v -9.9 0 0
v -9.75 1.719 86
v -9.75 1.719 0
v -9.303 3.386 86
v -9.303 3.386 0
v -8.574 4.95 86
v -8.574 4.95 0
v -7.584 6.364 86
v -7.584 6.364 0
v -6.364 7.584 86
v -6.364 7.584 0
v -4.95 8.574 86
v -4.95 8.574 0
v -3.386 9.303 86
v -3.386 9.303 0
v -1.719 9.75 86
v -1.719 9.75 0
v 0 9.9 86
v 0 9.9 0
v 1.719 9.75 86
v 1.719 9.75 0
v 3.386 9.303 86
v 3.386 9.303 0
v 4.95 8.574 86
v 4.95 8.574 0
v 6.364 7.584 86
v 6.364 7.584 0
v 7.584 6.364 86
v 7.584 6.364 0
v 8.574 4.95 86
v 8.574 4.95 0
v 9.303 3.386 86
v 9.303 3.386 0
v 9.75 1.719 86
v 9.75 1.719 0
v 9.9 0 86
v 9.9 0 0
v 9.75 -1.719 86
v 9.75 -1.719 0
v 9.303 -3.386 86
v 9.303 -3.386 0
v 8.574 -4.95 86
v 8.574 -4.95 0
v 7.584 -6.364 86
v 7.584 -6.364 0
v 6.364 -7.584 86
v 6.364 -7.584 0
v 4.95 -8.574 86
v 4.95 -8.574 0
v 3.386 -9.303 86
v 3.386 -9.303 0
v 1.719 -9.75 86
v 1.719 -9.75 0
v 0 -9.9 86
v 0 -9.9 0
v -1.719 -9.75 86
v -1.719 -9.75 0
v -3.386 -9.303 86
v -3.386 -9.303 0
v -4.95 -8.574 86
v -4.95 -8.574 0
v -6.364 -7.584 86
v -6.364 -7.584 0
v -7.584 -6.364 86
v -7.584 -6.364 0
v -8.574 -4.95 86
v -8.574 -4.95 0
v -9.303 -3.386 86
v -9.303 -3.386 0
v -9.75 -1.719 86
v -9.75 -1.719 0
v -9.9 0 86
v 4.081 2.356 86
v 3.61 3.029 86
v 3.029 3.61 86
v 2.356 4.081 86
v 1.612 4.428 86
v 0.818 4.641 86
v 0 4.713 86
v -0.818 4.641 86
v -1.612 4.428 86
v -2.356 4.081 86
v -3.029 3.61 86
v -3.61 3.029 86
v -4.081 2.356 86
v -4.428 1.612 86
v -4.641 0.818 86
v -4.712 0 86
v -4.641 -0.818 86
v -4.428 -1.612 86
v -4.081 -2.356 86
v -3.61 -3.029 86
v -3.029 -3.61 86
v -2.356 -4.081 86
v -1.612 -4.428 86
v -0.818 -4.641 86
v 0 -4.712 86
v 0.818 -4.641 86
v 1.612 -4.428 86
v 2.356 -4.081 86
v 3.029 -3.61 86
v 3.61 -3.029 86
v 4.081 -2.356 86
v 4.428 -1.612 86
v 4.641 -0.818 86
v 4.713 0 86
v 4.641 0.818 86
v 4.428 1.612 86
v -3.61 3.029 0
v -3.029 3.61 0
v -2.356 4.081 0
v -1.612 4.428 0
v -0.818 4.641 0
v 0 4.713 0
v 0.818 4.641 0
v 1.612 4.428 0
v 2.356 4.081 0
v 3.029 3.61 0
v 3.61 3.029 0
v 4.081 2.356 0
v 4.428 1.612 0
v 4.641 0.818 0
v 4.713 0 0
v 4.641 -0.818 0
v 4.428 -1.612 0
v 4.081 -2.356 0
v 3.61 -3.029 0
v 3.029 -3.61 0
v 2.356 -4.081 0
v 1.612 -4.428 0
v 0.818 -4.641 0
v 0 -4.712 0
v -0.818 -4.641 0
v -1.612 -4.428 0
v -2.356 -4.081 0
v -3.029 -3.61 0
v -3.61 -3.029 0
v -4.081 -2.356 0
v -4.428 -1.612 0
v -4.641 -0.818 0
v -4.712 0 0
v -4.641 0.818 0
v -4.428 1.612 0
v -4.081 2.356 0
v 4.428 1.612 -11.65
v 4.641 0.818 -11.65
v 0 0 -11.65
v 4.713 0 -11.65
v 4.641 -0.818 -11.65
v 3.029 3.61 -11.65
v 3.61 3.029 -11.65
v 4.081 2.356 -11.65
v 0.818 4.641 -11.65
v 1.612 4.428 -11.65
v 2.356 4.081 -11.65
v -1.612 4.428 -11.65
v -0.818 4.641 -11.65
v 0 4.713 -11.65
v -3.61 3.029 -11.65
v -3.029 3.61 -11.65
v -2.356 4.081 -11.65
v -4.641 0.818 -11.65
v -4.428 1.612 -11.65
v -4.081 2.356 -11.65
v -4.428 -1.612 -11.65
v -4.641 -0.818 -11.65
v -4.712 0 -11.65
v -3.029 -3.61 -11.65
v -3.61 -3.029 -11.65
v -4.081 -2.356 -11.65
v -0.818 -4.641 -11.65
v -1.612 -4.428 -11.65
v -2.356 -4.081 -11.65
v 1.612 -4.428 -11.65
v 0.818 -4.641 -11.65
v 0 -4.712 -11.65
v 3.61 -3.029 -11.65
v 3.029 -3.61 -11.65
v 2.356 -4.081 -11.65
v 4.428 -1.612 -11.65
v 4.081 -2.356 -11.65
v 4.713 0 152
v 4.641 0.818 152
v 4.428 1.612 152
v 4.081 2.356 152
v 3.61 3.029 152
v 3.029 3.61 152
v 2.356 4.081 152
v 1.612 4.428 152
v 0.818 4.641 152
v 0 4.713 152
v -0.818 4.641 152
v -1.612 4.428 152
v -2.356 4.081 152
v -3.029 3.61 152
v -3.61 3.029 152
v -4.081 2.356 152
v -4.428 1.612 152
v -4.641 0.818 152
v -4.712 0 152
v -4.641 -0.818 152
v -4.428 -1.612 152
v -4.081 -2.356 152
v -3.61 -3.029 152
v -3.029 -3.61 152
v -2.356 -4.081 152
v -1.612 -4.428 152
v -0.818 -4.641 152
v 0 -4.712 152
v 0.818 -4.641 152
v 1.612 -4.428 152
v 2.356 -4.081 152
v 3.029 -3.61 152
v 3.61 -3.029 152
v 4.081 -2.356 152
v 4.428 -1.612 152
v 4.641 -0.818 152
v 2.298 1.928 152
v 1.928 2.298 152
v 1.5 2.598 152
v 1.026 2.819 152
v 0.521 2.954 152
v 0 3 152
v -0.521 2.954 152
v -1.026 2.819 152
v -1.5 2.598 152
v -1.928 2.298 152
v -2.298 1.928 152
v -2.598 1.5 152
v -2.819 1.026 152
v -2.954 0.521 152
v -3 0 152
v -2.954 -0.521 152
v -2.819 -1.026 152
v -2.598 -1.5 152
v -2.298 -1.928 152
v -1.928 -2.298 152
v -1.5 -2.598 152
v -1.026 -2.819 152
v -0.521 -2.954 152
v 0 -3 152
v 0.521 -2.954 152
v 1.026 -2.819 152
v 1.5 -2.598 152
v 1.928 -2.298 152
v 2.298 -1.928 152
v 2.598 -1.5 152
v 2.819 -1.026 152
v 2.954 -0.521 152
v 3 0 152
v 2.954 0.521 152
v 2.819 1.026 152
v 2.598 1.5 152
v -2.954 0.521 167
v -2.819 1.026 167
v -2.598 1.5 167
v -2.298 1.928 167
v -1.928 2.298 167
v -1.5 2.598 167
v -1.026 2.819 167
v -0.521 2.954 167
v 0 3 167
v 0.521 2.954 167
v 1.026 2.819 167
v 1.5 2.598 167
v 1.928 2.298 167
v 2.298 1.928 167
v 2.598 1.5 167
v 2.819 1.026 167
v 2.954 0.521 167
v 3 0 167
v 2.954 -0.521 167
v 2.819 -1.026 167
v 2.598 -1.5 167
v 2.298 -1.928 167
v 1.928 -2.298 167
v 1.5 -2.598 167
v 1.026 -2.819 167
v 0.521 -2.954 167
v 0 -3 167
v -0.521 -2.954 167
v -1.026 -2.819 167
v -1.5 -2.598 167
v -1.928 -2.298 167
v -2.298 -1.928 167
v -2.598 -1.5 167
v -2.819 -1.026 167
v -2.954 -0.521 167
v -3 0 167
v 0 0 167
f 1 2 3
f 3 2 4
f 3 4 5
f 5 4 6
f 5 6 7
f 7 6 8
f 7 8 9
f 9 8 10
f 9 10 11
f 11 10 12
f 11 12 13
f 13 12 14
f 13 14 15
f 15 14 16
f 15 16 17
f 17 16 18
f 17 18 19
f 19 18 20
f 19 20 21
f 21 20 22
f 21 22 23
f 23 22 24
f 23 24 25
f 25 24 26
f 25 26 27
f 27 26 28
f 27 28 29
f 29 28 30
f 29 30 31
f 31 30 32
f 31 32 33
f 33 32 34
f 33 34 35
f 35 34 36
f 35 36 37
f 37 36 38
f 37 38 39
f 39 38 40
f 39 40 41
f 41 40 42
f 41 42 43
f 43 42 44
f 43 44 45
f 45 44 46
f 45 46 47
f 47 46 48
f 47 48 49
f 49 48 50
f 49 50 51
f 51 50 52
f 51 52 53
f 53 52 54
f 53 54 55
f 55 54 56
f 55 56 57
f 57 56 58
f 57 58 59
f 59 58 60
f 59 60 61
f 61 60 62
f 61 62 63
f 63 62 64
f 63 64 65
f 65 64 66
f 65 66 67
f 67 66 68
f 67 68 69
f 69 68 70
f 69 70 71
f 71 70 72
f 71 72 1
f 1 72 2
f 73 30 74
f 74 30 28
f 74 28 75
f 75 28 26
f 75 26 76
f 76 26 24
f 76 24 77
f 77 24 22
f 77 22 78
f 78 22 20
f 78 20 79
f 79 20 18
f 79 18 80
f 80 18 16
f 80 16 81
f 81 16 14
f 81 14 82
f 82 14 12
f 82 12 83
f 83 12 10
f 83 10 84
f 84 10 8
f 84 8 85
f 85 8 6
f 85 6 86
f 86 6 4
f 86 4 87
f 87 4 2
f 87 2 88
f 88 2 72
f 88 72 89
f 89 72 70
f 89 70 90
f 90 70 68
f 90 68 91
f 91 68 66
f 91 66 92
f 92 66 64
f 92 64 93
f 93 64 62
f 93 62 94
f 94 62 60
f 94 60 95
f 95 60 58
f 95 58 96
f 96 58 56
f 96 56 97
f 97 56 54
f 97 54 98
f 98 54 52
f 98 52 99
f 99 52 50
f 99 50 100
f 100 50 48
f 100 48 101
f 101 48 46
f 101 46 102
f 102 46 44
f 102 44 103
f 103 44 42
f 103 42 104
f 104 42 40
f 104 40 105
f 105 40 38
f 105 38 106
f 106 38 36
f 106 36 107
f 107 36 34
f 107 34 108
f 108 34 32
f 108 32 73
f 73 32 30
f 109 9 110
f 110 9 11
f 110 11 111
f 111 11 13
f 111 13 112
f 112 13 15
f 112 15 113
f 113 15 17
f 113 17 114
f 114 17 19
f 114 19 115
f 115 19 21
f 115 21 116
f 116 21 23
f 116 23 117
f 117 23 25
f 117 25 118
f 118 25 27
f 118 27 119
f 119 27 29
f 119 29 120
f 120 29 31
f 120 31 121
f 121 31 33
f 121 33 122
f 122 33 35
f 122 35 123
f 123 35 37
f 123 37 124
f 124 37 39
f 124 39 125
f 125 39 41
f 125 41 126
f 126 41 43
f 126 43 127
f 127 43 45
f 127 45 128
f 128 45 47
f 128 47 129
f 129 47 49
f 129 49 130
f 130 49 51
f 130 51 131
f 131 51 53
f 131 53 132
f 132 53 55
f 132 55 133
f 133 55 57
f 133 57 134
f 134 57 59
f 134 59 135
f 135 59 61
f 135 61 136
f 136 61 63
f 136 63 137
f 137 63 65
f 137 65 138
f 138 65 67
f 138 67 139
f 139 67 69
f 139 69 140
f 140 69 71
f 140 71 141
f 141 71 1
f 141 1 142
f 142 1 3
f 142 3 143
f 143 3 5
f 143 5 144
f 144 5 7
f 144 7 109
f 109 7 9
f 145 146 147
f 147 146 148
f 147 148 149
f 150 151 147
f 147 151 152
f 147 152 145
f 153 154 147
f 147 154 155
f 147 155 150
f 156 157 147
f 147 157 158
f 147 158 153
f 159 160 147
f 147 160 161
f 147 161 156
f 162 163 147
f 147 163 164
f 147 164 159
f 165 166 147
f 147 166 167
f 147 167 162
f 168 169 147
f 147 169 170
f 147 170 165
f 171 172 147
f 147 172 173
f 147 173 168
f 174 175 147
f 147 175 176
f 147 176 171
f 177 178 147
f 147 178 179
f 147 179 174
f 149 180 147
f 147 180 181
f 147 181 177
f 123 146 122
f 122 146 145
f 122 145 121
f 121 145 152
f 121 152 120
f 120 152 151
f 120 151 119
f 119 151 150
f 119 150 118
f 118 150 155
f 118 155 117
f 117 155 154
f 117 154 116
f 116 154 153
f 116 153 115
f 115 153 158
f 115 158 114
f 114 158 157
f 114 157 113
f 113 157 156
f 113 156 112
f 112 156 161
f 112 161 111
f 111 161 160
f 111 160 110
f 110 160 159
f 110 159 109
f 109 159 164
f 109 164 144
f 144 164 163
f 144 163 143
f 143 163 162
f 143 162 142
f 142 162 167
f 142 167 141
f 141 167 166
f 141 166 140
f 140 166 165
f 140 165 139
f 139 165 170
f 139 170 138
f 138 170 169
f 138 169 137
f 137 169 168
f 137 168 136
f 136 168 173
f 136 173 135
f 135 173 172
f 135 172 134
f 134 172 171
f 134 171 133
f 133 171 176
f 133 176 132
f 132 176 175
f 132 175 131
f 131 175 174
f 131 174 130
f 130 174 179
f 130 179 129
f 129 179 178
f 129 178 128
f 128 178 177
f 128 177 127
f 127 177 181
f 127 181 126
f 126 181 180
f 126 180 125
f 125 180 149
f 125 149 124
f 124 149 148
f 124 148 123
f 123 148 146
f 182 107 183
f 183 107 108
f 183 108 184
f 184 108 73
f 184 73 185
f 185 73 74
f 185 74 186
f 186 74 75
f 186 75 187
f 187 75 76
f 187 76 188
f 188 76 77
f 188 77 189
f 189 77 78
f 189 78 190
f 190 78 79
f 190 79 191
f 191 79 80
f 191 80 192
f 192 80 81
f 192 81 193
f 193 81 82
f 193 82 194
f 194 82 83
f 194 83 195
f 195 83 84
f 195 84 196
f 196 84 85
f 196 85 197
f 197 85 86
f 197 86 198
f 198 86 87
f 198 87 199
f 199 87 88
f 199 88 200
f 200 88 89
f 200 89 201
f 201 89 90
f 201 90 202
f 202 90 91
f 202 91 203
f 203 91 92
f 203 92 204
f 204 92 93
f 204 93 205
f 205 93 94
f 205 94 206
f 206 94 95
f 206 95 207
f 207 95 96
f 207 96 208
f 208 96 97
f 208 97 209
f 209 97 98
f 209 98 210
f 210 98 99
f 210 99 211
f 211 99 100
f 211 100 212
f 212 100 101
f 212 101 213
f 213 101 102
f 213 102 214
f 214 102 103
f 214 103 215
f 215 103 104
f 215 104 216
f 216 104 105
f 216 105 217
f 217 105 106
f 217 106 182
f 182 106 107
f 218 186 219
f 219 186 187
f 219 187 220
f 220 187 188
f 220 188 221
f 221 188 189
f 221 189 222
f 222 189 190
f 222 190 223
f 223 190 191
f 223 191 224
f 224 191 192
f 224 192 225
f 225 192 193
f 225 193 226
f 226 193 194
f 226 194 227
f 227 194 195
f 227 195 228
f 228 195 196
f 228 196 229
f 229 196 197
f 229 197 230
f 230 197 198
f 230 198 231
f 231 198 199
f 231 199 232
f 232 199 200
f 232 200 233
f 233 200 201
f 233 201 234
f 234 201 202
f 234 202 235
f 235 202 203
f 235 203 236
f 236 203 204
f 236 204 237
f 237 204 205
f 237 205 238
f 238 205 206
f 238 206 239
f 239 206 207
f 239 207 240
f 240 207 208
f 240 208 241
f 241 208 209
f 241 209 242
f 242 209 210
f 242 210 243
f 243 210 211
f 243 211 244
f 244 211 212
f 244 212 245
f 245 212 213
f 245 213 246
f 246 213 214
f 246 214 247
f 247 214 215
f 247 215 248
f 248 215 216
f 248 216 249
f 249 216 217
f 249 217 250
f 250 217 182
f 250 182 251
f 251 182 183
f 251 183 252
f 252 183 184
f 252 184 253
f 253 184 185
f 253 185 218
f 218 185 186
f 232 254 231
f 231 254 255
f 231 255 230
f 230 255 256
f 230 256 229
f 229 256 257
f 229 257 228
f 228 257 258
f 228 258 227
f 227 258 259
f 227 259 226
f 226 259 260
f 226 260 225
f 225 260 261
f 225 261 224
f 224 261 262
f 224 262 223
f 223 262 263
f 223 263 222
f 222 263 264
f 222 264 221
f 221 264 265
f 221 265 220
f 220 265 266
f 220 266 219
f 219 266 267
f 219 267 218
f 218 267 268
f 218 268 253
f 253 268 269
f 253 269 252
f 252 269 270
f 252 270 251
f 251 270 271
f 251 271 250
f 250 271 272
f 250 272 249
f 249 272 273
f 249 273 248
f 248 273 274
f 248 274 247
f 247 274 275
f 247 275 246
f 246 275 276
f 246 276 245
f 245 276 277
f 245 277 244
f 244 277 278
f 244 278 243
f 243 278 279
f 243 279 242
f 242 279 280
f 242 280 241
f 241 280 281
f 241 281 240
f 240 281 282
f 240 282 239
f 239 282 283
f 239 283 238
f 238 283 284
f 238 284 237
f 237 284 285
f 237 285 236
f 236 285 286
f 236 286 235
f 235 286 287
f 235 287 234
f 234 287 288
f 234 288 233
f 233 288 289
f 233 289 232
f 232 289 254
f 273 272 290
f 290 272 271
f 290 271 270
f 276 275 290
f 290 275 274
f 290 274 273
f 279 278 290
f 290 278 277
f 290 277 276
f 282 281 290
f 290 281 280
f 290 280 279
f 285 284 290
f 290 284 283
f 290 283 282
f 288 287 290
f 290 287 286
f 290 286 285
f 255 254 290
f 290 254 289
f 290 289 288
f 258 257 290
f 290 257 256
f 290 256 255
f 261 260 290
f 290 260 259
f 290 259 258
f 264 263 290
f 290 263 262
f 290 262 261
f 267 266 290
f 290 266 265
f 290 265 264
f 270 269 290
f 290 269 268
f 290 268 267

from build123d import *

# Parameters (mm, degrees)
SKETCH1_R                = 9.9
BOSS_EXTRUDE1_DEPTH      = 86
BOSS_EXTRUDE3_DEPTH      = 66
BOSS_EXTRUDE3_DEPTH_BACK = 97.65
SKETCH3_R                = 4.7125
BOSS_EXTRUDE2_START      = 66
SKETCH2_R                = 3
BOSS_EXTRUDE2_DEPTH      = 15


with BuildPart() as part:
    # Sketch1 → Boss-Extrude1 (new body)
    with BuildSketch(Plane.XY):
        Circle(SKETCH1_R)
    extrude(amount=BOSS_EXTRUDE1_DEPTH)

    # Sketch3 → Boss-Extrude3 (add, two sides: drawn at the far end of the back side and taken through both)
    with BuildSketch(Plane.XY.offset(86).offset(-BOSS_EXTRUDE3_DEPTH_BACK)):
        Circle(SKETCH3_R)
    extrude(amount=BOSS_EXTRUDE3_DEPTH + BOSS_EXTRUDE3_DEPTH_BACK)

    # Sketch2 → Boss-Extrude2 (add)
    with BuildSketch(Plane.XY.offset(86).offset(BOSS_EXTRUDE2_START)):
        Circle(SKETCH2_R)
    extrude(amount=BOSS_EXTRUDE2_DEPTH)


solid = part.part
